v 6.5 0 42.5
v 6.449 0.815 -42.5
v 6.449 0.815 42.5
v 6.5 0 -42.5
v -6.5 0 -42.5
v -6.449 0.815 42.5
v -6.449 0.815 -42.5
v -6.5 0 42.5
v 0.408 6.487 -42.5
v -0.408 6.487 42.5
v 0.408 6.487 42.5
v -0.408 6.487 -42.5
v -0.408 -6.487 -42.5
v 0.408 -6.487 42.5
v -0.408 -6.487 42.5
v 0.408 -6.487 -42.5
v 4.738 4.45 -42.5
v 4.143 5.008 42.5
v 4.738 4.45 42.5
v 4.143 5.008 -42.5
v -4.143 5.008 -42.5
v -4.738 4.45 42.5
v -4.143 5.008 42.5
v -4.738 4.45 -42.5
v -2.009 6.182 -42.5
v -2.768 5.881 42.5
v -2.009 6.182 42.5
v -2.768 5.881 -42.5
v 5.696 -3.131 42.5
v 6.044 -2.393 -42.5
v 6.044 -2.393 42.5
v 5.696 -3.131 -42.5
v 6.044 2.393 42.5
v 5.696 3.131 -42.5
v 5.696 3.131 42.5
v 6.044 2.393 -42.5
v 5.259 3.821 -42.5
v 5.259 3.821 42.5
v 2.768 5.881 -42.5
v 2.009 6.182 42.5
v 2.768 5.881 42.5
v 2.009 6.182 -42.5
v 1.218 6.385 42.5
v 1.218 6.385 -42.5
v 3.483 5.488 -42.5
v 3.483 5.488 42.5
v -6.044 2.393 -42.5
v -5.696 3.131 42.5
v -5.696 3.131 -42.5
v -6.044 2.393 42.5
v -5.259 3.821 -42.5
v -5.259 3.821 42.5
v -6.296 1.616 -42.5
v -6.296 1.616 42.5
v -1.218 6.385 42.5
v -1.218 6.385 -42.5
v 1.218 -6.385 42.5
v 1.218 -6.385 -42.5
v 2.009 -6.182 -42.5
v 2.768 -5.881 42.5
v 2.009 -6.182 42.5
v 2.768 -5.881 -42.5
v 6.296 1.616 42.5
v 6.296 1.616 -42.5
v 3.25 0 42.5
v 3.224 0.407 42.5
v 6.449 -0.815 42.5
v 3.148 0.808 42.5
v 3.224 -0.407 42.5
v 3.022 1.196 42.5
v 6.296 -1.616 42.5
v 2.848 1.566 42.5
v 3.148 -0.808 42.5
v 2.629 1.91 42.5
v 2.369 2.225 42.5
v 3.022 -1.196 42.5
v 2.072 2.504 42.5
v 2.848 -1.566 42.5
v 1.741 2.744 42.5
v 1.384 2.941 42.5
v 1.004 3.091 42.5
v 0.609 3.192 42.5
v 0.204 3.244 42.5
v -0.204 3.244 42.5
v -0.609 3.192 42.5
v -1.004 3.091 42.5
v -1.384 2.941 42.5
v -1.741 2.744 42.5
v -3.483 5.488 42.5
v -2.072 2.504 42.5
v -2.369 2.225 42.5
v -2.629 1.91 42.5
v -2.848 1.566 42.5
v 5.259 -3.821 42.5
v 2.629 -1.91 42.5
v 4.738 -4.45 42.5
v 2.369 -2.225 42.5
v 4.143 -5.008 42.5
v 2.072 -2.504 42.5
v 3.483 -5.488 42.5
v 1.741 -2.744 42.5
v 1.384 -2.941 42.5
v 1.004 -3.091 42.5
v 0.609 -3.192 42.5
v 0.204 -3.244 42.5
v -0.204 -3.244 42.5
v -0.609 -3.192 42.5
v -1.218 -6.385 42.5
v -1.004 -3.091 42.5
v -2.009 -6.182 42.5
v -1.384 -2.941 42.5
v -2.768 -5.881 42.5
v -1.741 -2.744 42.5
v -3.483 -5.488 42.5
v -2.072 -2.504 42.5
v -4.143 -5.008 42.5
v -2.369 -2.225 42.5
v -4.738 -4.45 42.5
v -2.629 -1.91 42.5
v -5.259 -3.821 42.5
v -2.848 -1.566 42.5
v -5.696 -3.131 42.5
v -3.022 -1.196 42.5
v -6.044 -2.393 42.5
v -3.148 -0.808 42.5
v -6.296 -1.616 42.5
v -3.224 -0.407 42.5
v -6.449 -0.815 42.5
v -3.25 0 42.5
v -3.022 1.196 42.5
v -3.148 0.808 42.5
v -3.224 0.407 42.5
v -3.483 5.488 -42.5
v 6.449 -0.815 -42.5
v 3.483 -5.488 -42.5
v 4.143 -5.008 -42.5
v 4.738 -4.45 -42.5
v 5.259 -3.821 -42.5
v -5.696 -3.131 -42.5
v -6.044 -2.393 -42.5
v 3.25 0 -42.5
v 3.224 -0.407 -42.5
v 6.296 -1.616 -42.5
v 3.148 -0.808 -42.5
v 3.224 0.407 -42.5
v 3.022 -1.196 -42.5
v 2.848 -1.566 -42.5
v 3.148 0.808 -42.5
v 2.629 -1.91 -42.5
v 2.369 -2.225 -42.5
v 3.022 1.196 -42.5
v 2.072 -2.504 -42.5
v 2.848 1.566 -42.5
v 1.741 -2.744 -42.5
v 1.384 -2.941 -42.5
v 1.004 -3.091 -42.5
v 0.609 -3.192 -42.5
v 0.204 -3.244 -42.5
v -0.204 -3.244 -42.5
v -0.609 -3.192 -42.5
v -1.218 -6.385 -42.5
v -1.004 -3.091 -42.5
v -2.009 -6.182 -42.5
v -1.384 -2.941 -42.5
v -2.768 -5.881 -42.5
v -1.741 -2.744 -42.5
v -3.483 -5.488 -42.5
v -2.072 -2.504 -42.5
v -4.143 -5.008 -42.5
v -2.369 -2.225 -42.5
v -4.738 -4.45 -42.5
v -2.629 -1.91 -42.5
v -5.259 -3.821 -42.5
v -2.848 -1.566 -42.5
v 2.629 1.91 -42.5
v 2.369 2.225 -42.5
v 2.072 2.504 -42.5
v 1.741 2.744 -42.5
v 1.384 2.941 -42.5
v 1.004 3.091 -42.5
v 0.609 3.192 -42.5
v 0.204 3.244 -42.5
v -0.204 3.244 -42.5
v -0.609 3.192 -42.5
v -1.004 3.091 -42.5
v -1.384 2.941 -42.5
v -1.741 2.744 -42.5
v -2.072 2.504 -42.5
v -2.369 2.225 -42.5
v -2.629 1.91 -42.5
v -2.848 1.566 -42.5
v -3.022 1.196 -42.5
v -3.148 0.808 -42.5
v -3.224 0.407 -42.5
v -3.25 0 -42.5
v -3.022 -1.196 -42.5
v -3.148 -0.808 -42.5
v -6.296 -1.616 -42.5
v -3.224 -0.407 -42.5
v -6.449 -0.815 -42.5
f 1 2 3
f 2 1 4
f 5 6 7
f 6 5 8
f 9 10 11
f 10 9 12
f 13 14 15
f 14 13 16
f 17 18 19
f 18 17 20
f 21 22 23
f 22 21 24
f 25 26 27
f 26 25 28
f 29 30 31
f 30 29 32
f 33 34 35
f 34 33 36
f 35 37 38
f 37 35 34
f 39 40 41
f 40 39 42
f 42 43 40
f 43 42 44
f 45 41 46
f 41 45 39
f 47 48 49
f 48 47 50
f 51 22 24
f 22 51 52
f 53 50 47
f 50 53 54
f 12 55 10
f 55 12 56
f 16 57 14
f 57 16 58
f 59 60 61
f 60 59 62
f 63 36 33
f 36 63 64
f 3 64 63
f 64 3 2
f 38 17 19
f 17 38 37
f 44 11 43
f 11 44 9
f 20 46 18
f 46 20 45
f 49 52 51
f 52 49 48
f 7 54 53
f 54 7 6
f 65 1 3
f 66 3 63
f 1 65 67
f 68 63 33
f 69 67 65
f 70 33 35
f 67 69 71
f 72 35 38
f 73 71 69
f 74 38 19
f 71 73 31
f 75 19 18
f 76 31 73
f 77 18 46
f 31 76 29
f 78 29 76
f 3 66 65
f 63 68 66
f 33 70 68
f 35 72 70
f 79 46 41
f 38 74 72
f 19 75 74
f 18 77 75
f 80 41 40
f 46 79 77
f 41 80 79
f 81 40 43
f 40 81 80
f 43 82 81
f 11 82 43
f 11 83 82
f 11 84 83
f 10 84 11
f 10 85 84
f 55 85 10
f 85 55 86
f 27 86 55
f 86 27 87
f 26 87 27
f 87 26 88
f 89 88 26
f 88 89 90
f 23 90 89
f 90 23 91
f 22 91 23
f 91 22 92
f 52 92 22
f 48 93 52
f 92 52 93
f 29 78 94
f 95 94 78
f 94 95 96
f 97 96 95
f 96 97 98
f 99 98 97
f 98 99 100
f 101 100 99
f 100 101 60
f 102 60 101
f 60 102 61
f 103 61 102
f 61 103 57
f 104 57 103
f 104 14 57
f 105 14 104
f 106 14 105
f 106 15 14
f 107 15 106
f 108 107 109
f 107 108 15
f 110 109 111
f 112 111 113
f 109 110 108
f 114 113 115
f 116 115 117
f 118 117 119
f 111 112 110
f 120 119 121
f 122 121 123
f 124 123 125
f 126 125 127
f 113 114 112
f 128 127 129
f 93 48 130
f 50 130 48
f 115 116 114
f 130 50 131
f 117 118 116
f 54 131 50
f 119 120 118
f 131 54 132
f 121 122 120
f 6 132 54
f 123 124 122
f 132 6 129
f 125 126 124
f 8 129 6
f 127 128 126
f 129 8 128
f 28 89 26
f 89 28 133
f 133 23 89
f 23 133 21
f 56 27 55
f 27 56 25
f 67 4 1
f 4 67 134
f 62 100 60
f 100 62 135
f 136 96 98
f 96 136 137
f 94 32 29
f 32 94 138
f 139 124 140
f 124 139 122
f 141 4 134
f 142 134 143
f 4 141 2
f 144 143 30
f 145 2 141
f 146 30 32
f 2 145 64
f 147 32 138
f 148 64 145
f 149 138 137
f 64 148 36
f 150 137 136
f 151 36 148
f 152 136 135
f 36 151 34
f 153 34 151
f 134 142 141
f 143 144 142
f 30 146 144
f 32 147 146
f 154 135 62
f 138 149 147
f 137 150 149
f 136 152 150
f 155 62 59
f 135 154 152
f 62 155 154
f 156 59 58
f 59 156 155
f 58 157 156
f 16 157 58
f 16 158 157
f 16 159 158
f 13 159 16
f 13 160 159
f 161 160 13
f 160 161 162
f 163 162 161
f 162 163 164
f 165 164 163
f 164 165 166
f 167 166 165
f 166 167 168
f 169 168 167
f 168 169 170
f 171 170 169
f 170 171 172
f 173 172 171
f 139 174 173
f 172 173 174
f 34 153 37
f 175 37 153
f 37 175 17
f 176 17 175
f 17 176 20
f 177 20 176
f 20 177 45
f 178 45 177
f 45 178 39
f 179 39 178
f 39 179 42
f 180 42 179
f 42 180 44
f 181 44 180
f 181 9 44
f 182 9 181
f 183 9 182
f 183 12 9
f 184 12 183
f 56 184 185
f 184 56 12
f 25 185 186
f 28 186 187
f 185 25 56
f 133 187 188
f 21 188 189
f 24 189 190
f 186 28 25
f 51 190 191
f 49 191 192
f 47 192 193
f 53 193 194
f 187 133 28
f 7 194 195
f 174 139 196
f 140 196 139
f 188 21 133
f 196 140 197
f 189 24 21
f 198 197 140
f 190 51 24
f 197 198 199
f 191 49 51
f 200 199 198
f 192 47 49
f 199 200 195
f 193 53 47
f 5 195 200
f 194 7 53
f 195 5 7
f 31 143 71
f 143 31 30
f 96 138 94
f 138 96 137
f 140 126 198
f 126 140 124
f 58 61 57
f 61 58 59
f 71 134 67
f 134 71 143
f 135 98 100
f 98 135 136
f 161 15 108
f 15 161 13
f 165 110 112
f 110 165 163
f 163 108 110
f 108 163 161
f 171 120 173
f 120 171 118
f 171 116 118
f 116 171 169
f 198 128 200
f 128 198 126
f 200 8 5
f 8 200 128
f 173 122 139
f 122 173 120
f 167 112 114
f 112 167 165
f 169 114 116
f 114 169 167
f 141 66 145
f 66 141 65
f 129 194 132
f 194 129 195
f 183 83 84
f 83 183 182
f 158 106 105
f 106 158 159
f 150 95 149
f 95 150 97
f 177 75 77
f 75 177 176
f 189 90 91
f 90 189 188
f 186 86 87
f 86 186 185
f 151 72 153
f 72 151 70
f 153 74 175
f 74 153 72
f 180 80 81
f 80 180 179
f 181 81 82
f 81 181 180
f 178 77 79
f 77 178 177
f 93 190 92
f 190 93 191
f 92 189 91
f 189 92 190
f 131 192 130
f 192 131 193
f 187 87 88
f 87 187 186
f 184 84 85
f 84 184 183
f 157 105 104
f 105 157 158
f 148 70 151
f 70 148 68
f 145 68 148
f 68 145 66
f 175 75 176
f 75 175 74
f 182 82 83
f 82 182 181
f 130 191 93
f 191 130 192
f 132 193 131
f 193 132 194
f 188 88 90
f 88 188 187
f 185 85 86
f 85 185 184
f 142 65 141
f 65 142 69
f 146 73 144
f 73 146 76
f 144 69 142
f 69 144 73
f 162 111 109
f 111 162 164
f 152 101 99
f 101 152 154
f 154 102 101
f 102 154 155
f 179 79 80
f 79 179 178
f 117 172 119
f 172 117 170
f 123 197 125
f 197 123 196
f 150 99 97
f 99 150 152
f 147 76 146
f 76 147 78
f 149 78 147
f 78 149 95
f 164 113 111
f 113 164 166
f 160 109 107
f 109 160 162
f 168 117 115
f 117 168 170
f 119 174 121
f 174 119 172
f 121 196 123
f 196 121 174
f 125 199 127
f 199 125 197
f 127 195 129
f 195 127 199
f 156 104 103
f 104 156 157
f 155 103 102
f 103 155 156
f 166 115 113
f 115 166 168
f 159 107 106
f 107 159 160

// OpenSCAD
$fn = 50;


difference() {
	union() {
		translate(v = [0, 0, -42.5000000000]) {
			cylinder(h = 85, r = 6.5000000000);
		}
	}
	union() {
		translate(v = [0, 0, -100.0000000000]) {
			cylinder(h = 200, r = 3.2500000000);
		}
	}
}
